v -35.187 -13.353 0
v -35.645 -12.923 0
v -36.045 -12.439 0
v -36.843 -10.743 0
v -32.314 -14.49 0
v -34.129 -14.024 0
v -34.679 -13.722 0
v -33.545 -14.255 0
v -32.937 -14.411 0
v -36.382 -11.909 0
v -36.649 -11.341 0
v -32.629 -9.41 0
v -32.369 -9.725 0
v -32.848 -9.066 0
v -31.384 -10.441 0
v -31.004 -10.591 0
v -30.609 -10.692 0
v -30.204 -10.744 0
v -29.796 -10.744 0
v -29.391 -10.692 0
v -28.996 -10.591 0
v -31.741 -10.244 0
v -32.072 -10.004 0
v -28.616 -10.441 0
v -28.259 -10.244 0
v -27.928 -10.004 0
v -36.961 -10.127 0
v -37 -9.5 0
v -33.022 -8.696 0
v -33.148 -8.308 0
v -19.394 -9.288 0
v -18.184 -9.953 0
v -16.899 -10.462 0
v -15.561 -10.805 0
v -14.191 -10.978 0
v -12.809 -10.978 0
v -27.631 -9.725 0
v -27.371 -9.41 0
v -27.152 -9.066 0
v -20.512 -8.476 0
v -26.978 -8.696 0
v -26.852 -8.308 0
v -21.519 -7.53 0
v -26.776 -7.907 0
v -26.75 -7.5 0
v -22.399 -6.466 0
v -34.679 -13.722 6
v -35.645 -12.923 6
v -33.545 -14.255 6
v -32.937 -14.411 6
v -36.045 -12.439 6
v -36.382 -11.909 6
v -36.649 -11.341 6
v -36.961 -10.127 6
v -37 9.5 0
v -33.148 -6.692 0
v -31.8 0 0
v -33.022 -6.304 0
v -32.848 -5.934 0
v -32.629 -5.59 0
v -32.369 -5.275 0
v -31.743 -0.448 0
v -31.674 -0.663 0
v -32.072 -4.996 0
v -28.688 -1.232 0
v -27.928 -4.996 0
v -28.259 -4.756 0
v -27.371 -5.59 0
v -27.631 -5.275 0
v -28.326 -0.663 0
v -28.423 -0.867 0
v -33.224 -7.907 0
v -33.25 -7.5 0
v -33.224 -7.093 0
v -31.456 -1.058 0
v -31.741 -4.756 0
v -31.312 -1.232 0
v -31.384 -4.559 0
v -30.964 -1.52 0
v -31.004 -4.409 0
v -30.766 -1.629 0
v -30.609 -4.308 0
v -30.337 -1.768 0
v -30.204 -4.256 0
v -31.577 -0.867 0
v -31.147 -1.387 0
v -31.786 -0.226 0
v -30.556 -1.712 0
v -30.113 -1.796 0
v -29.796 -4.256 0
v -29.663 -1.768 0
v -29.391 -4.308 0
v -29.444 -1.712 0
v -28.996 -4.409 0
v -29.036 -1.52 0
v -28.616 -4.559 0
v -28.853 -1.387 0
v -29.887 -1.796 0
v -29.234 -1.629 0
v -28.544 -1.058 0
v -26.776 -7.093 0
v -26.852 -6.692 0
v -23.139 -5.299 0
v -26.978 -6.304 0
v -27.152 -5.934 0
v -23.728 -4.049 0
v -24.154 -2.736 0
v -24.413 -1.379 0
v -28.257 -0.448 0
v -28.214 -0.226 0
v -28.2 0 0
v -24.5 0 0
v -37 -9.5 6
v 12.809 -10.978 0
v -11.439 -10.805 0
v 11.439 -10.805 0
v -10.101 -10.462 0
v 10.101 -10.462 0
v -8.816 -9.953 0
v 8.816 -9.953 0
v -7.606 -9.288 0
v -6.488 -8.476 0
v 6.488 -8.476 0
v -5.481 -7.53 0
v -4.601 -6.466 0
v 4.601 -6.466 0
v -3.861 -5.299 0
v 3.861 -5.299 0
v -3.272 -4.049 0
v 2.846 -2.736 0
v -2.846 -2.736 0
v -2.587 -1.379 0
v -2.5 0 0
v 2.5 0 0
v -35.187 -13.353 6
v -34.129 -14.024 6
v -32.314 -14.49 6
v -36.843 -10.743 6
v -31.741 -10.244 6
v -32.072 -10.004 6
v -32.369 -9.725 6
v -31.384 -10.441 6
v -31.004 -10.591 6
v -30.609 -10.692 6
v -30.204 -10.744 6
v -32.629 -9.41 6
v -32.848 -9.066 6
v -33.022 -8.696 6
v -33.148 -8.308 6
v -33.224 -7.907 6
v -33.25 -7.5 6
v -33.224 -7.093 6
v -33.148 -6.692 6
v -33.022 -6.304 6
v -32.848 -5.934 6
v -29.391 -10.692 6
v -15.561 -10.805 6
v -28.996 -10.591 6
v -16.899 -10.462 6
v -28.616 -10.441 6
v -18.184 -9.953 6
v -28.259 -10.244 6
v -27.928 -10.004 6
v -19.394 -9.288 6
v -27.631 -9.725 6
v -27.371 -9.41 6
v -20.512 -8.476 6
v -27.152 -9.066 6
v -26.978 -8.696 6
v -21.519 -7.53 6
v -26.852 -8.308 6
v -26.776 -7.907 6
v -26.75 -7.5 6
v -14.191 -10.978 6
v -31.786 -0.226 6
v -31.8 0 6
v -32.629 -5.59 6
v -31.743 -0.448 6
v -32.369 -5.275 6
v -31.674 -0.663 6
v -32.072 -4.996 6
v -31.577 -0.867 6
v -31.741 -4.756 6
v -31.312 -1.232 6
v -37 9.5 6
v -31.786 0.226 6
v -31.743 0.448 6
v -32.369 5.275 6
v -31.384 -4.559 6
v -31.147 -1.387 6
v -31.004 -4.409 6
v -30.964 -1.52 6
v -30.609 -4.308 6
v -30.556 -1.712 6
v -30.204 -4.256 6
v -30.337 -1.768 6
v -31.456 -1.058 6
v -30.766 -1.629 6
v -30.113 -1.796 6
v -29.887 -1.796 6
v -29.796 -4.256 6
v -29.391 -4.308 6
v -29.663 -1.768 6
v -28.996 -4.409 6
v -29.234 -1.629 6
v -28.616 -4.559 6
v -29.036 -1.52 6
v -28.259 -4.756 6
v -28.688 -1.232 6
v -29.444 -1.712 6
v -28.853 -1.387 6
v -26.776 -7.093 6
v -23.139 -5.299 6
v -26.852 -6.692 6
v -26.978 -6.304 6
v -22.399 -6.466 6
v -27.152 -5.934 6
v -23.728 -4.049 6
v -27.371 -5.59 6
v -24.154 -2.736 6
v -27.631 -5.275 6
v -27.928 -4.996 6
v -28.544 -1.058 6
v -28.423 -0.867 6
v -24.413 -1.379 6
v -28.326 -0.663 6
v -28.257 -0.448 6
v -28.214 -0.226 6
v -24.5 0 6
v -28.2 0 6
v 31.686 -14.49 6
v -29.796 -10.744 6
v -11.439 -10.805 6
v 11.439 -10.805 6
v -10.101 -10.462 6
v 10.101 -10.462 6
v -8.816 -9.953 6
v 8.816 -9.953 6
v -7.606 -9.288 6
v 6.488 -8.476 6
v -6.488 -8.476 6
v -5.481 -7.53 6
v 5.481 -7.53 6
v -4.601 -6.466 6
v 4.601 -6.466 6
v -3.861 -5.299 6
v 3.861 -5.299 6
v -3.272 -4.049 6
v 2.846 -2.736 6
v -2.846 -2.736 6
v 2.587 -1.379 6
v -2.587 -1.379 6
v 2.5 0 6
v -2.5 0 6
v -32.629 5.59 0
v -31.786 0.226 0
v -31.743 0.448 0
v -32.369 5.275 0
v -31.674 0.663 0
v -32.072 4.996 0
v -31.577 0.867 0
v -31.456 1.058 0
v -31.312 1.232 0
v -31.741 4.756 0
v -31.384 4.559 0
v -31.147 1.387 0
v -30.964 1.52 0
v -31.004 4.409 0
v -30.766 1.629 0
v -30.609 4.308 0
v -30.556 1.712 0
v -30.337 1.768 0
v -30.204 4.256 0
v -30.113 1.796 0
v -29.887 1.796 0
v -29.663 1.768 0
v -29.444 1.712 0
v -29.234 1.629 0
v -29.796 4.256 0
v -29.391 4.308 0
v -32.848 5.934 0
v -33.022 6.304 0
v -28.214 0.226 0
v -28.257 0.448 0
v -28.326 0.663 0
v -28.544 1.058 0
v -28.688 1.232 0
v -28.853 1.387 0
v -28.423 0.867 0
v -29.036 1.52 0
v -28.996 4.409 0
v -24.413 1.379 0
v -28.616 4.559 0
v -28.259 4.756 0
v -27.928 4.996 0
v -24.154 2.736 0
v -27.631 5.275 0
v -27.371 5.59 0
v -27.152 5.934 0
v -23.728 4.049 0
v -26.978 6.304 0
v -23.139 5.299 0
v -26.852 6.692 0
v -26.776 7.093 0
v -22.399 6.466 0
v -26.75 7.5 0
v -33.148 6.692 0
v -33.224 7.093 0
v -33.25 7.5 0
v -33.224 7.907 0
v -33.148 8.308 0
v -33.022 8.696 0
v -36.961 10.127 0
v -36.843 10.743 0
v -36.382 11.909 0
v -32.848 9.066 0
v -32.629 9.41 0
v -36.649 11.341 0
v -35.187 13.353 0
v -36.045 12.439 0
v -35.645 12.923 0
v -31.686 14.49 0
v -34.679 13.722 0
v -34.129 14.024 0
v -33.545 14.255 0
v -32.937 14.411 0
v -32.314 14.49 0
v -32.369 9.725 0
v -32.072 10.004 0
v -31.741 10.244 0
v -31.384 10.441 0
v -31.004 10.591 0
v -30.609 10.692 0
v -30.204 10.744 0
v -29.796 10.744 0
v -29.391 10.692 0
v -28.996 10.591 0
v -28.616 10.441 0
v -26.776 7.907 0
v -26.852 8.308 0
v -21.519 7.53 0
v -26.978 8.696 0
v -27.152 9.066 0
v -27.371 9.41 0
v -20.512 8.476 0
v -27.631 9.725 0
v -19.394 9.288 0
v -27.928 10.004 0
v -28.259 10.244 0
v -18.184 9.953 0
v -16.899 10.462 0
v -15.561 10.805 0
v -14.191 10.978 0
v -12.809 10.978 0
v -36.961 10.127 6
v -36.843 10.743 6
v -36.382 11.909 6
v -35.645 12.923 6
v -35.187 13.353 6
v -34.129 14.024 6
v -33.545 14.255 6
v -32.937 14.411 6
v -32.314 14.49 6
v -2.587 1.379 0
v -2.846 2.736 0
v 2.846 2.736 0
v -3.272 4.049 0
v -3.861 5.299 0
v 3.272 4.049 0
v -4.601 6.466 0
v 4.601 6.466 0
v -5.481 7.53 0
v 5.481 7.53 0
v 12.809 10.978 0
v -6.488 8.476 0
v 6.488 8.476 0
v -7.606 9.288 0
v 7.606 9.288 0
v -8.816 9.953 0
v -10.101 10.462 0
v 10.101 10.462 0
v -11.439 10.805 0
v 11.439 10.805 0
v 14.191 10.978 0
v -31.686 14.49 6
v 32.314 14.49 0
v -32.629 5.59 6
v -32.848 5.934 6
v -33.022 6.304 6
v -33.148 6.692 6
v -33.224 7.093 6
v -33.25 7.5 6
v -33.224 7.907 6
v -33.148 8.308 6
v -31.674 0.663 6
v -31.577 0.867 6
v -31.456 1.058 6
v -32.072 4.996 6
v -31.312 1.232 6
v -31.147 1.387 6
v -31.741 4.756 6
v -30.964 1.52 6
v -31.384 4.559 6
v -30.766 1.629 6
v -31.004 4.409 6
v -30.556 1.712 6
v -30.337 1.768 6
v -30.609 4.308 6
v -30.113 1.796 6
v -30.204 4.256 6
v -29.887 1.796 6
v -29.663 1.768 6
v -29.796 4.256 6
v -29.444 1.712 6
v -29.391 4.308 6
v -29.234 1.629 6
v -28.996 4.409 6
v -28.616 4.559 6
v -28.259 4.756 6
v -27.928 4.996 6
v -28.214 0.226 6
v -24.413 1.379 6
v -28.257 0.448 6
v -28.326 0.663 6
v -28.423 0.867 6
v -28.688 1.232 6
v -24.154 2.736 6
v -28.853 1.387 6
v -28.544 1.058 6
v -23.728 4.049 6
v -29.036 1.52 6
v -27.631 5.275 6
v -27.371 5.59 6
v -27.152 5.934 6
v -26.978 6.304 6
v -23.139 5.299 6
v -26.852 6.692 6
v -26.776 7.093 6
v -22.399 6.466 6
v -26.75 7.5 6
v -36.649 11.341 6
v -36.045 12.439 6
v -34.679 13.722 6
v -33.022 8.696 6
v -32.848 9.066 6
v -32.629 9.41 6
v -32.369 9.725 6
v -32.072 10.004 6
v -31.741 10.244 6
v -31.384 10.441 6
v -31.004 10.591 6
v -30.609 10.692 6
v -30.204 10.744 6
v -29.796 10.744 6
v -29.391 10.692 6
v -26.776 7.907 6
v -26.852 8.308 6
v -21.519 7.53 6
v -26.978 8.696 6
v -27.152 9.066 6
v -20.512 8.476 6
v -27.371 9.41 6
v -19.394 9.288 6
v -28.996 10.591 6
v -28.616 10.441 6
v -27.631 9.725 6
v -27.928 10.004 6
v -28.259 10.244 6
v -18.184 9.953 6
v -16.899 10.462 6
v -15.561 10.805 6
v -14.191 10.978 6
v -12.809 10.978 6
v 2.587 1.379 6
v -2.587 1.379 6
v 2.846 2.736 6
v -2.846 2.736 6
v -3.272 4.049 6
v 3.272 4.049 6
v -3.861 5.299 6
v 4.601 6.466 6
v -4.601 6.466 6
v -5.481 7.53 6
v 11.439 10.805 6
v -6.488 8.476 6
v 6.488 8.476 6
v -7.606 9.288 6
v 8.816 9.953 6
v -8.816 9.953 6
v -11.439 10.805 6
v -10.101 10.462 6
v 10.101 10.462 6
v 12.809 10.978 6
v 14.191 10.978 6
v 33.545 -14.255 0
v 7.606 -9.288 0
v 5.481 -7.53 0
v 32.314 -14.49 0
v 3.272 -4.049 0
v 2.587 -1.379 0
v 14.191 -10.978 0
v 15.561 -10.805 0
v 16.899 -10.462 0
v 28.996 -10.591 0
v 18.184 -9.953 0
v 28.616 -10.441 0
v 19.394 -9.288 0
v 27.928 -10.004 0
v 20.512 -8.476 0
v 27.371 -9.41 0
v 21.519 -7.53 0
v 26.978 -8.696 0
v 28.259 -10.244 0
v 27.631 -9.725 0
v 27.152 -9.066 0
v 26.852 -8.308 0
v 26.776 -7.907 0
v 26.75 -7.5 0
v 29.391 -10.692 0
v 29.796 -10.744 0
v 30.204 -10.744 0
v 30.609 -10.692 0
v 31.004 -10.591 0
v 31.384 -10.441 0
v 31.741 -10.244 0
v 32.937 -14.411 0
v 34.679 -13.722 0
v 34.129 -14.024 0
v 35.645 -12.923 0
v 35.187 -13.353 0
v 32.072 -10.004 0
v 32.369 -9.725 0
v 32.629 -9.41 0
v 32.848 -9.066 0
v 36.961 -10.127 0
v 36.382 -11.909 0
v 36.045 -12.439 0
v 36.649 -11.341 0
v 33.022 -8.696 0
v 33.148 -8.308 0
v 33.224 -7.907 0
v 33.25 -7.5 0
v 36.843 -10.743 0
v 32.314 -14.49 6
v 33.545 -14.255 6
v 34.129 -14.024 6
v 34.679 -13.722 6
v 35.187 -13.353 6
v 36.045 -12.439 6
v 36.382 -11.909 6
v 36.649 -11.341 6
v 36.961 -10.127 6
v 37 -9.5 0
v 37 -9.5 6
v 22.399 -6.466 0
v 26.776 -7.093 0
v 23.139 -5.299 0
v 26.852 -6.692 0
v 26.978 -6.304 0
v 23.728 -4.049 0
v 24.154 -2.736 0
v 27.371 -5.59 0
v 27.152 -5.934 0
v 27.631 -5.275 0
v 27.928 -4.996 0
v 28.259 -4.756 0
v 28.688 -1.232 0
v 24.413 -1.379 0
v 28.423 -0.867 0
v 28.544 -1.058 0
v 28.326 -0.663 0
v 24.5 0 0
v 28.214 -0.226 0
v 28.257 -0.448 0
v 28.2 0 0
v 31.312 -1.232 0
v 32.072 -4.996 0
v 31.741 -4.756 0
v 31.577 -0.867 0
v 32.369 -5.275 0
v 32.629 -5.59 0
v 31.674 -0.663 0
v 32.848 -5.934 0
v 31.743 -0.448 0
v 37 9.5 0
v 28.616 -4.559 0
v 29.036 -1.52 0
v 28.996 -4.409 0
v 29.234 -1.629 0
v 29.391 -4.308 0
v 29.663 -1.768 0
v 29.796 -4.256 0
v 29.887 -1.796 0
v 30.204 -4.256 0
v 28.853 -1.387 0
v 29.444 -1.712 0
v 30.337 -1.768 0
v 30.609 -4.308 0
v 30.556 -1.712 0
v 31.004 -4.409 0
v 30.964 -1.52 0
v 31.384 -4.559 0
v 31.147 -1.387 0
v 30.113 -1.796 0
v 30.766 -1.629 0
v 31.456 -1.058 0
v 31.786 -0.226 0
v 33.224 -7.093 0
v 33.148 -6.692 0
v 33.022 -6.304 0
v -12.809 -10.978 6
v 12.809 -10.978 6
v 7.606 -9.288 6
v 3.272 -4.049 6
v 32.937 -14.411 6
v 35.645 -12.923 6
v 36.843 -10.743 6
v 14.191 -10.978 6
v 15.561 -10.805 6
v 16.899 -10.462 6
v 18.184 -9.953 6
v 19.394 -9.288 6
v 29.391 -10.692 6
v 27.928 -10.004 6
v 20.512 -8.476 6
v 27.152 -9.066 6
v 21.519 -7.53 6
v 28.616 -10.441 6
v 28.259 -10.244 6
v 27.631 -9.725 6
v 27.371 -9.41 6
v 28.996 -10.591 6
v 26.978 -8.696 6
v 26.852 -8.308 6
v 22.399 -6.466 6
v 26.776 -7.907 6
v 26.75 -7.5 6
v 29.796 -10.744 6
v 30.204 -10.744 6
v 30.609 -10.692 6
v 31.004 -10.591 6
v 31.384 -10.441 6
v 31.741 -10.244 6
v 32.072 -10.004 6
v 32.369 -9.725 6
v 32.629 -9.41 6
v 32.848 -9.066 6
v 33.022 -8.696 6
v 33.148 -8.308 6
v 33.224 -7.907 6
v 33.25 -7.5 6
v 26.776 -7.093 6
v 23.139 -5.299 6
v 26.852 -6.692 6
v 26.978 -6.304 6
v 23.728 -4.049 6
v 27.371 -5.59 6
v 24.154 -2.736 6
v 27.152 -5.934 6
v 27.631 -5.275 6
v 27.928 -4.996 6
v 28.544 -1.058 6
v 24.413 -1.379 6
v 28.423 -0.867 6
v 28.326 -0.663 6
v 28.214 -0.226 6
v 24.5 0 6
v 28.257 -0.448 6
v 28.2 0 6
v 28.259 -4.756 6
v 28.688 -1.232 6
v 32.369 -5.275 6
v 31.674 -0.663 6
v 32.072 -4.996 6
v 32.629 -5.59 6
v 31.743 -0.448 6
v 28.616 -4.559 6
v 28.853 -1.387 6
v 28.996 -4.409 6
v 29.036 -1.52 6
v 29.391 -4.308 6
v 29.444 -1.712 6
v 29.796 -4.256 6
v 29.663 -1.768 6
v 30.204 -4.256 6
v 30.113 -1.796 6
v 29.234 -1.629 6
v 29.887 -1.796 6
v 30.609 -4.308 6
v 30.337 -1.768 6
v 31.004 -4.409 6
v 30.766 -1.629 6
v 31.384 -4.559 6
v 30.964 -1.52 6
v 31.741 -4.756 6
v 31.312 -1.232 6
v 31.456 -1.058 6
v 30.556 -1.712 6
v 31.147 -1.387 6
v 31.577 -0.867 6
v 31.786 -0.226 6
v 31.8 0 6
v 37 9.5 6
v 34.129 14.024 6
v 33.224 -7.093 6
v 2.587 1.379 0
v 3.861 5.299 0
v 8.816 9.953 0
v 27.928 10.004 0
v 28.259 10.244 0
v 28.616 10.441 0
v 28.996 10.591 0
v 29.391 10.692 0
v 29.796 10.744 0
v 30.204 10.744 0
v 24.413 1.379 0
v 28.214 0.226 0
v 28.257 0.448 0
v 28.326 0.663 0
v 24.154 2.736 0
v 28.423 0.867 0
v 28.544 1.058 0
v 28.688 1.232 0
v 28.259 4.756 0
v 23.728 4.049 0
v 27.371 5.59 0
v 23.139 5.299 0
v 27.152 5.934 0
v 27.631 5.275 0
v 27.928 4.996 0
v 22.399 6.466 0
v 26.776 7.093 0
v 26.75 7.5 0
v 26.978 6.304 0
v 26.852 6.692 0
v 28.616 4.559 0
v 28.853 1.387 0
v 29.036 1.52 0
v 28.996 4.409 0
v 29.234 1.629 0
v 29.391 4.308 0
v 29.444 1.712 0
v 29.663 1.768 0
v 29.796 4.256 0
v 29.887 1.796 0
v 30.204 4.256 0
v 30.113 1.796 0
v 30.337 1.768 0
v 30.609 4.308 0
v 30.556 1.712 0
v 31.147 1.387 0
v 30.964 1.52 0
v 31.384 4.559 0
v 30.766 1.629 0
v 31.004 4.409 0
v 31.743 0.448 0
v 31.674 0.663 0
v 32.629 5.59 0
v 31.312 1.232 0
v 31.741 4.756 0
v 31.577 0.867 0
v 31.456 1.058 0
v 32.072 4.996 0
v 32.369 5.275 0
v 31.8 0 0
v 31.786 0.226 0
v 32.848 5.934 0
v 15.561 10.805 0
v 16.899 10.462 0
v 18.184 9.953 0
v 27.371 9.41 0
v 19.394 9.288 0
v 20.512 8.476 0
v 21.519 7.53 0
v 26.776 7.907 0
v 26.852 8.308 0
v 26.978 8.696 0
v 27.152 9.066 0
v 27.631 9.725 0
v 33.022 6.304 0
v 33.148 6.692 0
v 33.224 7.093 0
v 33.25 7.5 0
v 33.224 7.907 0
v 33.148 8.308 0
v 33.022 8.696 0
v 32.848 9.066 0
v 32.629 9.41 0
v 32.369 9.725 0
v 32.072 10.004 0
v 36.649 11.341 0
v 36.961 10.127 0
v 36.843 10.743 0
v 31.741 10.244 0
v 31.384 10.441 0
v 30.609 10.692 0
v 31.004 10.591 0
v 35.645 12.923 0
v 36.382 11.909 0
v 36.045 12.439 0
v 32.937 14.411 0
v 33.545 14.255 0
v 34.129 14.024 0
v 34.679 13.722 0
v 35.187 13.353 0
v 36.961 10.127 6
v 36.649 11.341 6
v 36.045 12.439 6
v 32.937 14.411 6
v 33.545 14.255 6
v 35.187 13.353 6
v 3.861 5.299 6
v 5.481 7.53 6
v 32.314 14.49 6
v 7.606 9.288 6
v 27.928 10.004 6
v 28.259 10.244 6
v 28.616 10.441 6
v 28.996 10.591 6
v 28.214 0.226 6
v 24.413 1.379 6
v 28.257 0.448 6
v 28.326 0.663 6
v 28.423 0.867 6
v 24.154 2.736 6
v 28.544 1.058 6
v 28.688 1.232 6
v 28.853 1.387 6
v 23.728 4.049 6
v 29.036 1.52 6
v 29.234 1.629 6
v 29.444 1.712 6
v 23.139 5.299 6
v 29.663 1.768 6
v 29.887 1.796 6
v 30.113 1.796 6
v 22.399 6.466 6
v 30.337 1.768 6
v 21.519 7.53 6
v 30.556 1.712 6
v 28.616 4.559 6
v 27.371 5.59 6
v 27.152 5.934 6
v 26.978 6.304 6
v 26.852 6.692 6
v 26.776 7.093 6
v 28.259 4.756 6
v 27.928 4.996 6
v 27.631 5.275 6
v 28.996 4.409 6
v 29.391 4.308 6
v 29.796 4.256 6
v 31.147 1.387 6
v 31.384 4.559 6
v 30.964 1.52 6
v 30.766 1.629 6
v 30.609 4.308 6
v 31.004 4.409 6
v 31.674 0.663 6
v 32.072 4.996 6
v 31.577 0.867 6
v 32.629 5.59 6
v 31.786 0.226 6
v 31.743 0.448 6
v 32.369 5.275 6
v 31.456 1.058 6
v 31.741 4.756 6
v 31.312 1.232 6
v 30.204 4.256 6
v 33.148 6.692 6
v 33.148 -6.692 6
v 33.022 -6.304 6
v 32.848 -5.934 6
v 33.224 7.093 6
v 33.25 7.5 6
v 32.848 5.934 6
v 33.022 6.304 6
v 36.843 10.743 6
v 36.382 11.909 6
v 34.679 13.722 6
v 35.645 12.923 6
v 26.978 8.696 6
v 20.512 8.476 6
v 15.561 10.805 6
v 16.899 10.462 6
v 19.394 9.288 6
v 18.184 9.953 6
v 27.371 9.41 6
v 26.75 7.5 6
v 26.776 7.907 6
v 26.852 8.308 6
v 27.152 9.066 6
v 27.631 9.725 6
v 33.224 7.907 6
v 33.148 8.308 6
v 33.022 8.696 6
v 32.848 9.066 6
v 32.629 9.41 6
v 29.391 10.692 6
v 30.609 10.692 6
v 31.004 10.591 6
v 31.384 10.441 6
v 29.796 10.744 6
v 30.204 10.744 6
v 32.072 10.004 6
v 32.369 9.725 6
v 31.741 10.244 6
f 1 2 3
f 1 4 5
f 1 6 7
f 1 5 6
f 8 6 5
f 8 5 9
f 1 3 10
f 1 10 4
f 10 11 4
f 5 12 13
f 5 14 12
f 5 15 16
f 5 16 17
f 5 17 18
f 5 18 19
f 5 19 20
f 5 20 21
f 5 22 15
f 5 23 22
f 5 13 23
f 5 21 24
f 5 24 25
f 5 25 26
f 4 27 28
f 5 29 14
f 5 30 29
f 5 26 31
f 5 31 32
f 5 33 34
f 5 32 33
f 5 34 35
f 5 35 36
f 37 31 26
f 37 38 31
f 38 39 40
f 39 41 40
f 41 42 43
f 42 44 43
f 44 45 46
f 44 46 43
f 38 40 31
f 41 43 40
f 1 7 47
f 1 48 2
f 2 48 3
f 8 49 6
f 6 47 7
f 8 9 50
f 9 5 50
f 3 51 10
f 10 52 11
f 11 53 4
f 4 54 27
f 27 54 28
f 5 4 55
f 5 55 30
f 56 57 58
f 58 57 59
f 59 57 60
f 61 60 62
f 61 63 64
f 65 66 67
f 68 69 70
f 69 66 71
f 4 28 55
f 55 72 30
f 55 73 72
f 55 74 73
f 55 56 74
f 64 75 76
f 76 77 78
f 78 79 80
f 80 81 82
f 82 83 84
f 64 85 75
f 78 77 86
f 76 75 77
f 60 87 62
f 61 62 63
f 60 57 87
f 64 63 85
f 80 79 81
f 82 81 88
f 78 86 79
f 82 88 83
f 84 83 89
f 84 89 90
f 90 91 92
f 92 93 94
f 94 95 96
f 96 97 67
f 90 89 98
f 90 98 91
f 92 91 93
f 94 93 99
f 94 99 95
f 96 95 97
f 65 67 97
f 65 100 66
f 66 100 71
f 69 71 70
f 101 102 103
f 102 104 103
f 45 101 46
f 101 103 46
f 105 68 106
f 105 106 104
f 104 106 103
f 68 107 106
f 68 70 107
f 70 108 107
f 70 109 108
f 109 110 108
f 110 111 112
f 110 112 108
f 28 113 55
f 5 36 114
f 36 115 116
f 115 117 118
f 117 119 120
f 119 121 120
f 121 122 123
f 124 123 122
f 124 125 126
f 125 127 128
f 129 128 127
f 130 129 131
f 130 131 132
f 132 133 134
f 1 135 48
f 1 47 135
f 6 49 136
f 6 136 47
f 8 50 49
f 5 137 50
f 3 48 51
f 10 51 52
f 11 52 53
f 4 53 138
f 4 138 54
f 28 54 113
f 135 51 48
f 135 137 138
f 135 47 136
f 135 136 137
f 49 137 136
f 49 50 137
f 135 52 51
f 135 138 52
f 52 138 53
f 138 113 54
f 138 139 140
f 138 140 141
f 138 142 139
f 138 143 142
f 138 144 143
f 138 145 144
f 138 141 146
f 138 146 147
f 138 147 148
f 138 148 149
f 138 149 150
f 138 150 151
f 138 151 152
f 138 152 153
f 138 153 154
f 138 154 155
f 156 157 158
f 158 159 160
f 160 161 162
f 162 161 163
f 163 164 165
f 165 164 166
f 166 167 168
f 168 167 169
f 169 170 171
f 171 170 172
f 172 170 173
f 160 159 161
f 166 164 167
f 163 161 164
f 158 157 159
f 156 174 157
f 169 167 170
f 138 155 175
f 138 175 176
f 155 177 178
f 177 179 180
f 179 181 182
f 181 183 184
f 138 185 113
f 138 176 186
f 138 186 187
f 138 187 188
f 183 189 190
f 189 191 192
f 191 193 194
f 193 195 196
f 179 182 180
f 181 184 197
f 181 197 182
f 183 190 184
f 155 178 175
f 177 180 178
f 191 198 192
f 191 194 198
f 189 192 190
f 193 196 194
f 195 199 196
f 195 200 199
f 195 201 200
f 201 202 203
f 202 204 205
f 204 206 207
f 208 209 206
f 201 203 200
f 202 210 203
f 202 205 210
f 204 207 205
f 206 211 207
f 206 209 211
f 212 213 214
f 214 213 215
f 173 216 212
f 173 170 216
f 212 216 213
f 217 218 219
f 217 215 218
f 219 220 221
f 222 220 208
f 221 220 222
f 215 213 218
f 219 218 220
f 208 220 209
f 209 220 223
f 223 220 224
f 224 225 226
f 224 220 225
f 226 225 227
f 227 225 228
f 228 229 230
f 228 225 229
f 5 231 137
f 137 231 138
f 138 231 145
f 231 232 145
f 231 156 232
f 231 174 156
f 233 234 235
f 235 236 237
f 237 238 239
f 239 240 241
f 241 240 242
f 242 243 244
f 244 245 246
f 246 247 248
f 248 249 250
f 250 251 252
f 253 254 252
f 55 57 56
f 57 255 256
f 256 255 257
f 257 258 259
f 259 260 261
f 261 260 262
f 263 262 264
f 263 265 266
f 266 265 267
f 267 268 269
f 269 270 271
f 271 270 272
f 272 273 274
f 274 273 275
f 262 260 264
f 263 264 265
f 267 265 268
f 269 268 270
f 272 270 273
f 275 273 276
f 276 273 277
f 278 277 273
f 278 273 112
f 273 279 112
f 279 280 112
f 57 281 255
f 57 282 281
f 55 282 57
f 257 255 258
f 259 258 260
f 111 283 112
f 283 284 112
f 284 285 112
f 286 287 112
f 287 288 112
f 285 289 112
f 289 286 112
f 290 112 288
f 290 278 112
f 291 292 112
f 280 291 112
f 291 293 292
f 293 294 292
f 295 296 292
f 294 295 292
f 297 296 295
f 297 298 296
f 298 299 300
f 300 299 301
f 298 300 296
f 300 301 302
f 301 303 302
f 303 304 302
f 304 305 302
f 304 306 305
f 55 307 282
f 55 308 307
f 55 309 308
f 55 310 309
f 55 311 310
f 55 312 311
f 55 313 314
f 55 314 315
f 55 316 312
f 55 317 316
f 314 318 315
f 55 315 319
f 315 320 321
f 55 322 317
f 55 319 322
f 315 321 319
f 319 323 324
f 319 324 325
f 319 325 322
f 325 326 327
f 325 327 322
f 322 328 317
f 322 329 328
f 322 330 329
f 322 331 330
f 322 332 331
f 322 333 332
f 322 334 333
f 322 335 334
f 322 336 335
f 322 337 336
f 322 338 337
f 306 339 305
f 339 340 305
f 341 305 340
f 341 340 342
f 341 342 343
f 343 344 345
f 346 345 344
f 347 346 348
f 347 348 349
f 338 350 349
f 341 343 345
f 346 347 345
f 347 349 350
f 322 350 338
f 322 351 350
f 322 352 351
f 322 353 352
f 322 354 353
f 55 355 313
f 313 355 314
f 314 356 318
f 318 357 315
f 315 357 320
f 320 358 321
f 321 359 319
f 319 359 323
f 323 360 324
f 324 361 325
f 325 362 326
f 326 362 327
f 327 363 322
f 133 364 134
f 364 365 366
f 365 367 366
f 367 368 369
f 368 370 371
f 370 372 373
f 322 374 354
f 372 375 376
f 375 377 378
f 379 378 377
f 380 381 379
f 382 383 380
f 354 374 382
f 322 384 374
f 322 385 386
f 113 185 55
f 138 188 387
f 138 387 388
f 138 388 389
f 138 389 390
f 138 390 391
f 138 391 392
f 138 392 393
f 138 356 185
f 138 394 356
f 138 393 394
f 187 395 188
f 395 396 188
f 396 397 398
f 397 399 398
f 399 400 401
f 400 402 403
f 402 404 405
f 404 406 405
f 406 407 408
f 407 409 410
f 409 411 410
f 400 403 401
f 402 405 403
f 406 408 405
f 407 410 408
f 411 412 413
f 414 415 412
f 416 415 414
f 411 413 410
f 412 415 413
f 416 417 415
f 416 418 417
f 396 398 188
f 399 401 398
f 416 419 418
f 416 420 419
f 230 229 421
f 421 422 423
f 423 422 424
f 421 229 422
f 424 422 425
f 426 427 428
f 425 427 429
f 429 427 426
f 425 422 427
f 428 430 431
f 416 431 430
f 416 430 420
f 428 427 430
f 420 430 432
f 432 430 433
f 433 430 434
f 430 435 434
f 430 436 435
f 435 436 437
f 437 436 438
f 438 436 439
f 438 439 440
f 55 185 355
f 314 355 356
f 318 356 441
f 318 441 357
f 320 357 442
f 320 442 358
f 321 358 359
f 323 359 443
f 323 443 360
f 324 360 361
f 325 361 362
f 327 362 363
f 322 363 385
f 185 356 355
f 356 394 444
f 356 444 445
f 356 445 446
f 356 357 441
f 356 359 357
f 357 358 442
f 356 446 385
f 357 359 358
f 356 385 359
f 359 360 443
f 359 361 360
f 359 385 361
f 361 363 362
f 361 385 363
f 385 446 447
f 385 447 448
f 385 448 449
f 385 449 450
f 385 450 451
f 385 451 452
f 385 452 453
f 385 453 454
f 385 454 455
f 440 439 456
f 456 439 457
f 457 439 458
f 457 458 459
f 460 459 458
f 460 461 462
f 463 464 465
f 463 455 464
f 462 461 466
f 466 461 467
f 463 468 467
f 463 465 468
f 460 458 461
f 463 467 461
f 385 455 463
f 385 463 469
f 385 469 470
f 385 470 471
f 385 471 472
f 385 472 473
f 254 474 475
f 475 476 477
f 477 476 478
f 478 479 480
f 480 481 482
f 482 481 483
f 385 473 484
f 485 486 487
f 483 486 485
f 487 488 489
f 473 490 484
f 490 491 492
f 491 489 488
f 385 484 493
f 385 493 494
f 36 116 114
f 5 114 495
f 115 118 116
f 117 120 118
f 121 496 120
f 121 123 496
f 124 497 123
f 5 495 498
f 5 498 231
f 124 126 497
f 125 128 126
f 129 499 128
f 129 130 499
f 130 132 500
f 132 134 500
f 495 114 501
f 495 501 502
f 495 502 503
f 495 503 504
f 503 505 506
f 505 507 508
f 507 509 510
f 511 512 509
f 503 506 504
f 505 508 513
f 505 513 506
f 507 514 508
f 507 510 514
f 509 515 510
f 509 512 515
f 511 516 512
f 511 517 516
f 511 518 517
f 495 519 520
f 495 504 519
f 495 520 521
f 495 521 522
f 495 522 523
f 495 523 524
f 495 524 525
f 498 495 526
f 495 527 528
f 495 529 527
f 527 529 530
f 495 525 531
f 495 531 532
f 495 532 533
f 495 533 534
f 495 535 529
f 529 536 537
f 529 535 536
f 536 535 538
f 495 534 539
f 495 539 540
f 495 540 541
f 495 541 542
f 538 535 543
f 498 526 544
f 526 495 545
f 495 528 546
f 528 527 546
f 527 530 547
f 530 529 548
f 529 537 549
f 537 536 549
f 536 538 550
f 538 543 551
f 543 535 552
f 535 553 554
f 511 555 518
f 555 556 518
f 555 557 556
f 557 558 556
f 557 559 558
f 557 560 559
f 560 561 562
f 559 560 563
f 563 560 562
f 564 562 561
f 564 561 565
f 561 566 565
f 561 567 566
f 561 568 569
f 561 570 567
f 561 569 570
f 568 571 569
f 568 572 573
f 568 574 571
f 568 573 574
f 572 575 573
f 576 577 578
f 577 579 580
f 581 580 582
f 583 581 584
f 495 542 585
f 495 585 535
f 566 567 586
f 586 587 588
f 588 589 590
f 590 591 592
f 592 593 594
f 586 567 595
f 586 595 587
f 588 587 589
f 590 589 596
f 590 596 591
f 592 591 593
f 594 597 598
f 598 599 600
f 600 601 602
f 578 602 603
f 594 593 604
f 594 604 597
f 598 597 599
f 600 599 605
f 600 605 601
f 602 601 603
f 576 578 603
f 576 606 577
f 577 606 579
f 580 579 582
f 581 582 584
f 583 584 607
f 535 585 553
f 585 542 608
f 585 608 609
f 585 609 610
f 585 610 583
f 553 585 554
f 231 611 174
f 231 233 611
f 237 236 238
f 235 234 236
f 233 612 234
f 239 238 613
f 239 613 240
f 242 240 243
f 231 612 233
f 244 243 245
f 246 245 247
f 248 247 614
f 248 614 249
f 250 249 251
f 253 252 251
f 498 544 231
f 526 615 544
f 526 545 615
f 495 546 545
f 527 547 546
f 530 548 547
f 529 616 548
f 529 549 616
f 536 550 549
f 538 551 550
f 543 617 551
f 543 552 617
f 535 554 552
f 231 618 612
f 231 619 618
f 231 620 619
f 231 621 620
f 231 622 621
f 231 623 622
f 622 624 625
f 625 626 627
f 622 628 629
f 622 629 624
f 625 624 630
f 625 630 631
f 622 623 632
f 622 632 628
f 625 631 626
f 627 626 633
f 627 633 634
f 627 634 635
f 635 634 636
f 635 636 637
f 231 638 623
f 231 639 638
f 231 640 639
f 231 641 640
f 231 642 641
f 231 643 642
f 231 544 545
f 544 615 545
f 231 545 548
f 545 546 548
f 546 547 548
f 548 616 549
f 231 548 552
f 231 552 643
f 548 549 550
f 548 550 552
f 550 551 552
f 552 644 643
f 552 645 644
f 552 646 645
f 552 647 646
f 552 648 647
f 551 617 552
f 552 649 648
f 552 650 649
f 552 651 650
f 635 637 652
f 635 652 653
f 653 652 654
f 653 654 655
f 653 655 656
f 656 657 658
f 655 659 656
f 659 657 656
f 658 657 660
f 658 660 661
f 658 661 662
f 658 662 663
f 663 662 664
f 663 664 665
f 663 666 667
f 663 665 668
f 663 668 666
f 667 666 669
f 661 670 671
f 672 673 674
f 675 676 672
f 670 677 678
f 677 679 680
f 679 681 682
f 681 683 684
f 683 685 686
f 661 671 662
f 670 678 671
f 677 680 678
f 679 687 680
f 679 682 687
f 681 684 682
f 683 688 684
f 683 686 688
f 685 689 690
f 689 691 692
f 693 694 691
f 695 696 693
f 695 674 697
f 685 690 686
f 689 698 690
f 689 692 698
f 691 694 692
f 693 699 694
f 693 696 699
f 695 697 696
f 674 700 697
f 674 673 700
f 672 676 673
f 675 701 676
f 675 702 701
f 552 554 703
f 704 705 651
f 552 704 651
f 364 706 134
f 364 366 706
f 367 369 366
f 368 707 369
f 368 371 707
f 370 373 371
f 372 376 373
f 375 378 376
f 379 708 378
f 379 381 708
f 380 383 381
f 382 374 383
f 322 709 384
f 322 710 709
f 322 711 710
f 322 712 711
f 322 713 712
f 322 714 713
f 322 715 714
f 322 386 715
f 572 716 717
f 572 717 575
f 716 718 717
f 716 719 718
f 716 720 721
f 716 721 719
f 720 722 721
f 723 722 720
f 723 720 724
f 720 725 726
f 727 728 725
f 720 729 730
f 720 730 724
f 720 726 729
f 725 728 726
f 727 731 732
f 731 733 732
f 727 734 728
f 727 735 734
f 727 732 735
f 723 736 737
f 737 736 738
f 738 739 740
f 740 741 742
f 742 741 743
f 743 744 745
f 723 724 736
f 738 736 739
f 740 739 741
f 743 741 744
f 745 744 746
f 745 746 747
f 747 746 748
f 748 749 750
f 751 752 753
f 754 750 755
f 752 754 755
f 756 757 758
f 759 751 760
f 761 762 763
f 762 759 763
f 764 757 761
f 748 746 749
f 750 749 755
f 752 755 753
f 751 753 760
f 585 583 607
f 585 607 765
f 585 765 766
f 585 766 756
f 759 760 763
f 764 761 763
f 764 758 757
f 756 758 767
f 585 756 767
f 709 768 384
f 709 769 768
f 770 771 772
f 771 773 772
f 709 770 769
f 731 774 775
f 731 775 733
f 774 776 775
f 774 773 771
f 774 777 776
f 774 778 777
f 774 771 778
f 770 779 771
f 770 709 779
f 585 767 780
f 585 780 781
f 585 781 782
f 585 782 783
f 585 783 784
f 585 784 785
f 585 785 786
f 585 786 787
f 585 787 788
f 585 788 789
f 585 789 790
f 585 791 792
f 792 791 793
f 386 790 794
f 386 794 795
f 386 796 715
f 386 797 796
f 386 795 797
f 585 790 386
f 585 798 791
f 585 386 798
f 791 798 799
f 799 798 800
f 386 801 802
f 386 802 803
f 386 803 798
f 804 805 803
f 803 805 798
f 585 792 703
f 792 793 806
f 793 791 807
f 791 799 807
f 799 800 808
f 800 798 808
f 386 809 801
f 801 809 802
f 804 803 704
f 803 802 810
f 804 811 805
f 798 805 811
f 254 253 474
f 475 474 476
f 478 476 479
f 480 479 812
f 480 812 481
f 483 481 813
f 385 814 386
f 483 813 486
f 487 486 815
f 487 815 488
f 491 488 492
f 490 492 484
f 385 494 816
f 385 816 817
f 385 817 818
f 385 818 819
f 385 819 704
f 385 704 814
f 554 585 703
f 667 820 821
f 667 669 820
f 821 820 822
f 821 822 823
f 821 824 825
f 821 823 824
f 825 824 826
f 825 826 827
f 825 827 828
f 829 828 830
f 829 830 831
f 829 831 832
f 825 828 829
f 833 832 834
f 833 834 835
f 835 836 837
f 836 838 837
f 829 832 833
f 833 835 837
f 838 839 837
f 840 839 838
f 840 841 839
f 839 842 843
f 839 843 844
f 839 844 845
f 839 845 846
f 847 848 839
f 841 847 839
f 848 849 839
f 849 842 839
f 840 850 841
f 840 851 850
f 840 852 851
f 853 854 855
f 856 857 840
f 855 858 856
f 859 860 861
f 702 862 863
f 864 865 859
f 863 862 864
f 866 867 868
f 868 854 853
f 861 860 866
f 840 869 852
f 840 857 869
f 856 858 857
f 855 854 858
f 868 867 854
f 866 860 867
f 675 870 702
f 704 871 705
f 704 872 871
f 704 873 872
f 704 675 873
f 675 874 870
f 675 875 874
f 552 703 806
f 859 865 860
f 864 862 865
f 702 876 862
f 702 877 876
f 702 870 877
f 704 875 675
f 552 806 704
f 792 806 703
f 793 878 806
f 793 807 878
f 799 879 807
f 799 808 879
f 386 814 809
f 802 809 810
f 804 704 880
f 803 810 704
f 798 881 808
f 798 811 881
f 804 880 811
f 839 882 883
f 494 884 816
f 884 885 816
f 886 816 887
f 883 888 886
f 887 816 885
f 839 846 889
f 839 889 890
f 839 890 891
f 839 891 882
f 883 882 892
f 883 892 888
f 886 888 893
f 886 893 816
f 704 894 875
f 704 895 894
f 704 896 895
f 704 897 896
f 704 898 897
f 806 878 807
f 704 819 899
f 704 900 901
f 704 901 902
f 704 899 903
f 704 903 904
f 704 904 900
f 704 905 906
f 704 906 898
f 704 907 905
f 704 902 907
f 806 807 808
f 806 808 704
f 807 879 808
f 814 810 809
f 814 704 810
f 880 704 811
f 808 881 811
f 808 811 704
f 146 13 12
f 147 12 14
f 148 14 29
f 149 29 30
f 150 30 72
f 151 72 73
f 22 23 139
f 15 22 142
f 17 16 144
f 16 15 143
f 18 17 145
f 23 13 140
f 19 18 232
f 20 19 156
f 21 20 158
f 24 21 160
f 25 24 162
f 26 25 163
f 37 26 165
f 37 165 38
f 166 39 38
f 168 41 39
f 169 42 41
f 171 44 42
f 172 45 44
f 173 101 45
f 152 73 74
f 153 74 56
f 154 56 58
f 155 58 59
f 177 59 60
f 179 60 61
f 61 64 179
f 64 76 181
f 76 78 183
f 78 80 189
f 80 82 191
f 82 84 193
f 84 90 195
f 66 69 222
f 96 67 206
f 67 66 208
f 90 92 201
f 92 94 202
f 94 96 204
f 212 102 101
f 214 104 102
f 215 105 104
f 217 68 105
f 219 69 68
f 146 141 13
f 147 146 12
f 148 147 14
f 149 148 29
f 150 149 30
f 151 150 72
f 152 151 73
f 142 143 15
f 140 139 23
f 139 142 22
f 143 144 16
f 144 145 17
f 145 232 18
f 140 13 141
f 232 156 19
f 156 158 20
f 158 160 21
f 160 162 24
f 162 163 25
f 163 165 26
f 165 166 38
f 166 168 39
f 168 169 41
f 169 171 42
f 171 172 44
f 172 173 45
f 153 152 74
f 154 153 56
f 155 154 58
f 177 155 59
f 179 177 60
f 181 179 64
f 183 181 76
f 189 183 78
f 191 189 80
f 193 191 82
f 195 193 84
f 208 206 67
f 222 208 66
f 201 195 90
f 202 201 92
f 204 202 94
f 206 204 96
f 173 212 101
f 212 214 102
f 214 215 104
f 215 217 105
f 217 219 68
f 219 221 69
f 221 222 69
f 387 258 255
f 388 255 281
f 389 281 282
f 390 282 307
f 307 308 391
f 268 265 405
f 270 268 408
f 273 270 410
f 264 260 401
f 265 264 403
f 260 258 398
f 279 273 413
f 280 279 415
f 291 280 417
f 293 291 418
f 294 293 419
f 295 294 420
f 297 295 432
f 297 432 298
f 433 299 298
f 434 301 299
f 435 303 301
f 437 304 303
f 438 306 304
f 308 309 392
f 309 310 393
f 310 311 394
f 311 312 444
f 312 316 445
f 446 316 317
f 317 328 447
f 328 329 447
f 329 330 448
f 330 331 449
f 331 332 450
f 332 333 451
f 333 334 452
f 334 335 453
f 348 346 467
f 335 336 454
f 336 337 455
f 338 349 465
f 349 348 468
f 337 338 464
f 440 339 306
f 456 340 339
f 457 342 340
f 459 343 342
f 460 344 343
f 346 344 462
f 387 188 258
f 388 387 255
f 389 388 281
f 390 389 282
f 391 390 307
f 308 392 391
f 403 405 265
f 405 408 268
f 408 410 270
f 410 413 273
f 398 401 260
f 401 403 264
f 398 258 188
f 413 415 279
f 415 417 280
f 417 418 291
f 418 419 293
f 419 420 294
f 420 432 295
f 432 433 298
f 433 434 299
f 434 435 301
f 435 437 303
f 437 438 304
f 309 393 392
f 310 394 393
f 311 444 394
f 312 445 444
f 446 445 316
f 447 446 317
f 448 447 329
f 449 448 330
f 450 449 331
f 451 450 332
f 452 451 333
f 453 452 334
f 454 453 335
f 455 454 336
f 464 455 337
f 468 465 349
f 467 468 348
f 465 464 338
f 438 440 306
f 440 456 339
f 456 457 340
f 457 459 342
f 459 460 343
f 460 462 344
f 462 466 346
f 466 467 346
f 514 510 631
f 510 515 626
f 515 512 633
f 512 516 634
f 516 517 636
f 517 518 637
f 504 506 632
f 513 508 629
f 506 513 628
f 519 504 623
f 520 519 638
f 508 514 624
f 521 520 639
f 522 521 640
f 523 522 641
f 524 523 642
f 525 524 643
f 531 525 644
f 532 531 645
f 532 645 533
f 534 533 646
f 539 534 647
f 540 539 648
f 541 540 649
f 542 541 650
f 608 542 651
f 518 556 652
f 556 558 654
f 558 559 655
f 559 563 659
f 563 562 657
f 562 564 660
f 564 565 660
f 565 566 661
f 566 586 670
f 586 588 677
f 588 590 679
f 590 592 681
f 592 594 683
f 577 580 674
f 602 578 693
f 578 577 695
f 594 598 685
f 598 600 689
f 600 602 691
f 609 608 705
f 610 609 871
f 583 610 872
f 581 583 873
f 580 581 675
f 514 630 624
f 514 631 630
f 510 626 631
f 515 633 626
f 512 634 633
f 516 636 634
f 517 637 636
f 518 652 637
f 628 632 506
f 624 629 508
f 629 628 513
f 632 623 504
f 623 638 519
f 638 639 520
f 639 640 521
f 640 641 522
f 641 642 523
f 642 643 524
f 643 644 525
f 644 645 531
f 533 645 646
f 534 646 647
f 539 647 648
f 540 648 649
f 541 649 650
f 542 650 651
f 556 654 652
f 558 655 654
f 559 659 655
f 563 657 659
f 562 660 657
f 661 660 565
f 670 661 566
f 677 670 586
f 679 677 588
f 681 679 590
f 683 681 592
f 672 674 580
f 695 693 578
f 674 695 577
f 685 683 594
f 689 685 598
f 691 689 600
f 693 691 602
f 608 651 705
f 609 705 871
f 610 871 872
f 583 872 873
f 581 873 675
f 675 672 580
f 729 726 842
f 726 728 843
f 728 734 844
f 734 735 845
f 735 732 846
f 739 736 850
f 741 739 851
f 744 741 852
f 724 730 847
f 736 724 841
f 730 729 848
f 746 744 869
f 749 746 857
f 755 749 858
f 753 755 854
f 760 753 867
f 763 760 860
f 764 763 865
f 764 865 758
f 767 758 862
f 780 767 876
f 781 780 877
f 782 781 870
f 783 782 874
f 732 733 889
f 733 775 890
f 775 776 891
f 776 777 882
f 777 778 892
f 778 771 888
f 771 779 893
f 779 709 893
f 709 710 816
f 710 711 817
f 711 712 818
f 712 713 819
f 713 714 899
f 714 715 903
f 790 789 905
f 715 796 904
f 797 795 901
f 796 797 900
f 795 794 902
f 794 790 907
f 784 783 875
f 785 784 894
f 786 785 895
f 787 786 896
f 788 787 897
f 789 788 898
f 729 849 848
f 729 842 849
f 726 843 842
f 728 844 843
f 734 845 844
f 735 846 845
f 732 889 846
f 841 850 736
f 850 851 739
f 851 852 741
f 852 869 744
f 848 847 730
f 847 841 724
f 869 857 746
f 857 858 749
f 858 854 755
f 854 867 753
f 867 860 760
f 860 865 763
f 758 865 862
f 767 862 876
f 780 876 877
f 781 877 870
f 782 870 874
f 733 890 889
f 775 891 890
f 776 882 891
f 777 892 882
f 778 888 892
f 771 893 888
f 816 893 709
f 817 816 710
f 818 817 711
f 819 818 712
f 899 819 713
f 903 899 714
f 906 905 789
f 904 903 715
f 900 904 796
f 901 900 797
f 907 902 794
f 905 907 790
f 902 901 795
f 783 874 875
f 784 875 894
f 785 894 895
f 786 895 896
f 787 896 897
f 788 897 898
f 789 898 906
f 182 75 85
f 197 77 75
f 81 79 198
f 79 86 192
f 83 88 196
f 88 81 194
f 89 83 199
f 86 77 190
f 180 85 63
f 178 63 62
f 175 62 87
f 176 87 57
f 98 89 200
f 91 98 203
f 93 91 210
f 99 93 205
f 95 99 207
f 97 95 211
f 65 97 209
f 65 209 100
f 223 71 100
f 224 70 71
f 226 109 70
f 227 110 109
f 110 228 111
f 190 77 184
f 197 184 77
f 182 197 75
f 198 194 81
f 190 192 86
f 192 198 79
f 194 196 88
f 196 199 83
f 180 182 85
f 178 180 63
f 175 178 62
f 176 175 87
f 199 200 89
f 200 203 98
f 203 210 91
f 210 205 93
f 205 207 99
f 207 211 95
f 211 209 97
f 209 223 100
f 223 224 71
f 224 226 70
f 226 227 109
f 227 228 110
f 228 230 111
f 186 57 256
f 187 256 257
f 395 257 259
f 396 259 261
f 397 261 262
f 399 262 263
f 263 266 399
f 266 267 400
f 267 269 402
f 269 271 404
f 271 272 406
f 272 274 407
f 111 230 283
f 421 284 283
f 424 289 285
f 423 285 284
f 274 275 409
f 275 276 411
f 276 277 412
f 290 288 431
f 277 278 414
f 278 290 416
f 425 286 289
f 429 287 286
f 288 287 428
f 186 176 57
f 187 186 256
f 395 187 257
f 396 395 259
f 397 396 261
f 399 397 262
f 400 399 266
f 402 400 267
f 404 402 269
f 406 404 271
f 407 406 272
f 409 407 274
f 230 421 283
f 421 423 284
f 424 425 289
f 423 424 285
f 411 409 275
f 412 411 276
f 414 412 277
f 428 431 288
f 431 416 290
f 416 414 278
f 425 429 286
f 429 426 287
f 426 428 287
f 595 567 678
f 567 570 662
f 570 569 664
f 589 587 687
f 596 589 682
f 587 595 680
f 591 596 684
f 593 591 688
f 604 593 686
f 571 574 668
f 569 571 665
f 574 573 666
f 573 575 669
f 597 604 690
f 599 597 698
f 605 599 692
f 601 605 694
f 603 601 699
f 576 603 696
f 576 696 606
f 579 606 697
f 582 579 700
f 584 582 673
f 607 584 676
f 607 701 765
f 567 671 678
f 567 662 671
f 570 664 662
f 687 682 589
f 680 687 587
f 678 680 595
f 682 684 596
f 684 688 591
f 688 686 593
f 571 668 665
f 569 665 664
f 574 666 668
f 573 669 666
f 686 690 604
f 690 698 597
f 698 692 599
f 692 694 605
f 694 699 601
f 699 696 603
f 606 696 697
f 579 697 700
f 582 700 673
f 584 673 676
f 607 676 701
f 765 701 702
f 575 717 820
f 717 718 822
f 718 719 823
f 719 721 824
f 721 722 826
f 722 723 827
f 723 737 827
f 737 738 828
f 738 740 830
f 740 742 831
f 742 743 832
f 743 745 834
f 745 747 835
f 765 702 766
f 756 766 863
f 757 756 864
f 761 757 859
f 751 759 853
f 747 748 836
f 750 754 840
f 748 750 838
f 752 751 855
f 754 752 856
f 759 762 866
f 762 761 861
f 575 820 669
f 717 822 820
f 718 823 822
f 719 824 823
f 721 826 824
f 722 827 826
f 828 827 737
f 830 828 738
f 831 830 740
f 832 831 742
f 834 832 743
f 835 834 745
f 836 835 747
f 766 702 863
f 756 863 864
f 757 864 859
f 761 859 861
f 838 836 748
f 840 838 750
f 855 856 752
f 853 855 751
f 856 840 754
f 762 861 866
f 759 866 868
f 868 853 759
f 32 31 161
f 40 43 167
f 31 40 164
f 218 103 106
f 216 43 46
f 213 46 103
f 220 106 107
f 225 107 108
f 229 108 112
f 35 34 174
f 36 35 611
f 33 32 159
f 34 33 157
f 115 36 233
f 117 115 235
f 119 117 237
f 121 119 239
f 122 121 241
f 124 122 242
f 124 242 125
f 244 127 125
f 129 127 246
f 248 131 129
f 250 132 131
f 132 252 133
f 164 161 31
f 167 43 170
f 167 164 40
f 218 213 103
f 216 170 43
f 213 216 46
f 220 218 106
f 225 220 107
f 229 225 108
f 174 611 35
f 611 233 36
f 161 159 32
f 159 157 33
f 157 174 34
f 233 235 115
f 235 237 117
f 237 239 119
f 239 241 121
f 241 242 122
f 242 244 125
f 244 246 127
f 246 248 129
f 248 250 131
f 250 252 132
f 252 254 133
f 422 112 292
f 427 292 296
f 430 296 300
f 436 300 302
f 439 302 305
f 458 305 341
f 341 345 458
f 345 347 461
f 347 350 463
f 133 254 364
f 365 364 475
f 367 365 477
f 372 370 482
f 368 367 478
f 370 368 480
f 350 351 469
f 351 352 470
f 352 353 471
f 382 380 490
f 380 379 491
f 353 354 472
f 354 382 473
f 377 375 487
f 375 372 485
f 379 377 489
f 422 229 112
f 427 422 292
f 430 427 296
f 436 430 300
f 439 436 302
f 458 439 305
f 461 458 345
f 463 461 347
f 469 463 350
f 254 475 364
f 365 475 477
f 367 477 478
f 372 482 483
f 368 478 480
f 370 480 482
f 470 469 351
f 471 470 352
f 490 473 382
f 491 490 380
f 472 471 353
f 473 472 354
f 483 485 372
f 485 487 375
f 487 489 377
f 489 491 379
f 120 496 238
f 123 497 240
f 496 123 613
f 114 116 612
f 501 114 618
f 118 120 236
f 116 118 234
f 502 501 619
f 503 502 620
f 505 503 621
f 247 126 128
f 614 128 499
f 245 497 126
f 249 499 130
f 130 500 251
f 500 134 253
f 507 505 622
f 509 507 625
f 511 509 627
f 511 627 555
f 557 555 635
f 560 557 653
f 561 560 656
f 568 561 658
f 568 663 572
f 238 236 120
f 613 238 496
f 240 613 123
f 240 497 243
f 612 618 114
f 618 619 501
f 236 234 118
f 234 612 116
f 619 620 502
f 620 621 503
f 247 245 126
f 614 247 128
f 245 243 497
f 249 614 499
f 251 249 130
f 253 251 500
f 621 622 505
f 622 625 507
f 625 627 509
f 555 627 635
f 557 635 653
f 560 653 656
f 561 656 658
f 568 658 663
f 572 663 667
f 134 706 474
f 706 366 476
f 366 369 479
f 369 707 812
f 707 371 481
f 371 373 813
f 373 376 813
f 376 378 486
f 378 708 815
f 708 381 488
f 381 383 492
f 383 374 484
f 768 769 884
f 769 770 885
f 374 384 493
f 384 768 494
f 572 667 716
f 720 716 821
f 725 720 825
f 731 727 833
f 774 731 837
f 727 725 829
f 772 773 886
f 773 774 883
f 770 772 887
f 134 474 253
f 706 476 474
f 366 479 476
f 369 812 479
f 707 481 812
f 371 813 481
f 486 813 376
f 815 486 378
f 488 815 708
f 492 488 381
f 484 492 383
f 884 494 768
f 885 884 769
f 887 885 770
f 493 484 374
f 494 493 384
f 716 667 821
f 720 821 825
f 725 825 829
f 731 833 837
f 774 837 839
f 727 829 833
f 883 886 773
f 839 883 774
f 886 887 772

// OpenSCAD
$fn = 50;

difference() {
	union() {
		hull() {
			translate(v = [-32.0, 9.5, 0]) {
				cylinder(h = 6, r = 5);
			}
			translate(v = [32.0, 9.5, 0]) {
				cylinder(h = 6, r = 5);
			}
			translate(v = [-32.0, -9.5, 0]) {
				cylinder(h = 6, r = 5);
			}
			translate(v = [32.0, -9.5, 0]) {
				cylinder(h = 6, r = 5);
			}
		}
	}
	union() {
		translate(v = [-30.0, -7.5, 0]) {
			cylinder(h = 6, r = 3.25);
		}
		translate(v = [-30.0, 7.5, 0]) {
			cylinder(h = 6, r = 3.25);
		}
		translate(v = [30.0, -7.5, 0]) {
			cylinder(h = 6, r = 3.25);
		}
		translate(v = [30.0, 7.5, 0]) {
			cylinder(h = 6, r = 3.25);
		}
		translate(v = [-30.0, 0.0, 0]) {
			cylinder(h = 6, r = 1.8);
		}
		translate(v = [30.0, 0.0, 0]) {
			cylinder(h = 6, r = 1.8);
		}
		translate(v = [-13.5, 0, 0.0]) {
			cylinder(h = 6, r = 11.0);
		}
		translate(v = [13.5, 0, 0.0]) {
			cylinder(h = 6, r = 11.0);
		}
	}
}
